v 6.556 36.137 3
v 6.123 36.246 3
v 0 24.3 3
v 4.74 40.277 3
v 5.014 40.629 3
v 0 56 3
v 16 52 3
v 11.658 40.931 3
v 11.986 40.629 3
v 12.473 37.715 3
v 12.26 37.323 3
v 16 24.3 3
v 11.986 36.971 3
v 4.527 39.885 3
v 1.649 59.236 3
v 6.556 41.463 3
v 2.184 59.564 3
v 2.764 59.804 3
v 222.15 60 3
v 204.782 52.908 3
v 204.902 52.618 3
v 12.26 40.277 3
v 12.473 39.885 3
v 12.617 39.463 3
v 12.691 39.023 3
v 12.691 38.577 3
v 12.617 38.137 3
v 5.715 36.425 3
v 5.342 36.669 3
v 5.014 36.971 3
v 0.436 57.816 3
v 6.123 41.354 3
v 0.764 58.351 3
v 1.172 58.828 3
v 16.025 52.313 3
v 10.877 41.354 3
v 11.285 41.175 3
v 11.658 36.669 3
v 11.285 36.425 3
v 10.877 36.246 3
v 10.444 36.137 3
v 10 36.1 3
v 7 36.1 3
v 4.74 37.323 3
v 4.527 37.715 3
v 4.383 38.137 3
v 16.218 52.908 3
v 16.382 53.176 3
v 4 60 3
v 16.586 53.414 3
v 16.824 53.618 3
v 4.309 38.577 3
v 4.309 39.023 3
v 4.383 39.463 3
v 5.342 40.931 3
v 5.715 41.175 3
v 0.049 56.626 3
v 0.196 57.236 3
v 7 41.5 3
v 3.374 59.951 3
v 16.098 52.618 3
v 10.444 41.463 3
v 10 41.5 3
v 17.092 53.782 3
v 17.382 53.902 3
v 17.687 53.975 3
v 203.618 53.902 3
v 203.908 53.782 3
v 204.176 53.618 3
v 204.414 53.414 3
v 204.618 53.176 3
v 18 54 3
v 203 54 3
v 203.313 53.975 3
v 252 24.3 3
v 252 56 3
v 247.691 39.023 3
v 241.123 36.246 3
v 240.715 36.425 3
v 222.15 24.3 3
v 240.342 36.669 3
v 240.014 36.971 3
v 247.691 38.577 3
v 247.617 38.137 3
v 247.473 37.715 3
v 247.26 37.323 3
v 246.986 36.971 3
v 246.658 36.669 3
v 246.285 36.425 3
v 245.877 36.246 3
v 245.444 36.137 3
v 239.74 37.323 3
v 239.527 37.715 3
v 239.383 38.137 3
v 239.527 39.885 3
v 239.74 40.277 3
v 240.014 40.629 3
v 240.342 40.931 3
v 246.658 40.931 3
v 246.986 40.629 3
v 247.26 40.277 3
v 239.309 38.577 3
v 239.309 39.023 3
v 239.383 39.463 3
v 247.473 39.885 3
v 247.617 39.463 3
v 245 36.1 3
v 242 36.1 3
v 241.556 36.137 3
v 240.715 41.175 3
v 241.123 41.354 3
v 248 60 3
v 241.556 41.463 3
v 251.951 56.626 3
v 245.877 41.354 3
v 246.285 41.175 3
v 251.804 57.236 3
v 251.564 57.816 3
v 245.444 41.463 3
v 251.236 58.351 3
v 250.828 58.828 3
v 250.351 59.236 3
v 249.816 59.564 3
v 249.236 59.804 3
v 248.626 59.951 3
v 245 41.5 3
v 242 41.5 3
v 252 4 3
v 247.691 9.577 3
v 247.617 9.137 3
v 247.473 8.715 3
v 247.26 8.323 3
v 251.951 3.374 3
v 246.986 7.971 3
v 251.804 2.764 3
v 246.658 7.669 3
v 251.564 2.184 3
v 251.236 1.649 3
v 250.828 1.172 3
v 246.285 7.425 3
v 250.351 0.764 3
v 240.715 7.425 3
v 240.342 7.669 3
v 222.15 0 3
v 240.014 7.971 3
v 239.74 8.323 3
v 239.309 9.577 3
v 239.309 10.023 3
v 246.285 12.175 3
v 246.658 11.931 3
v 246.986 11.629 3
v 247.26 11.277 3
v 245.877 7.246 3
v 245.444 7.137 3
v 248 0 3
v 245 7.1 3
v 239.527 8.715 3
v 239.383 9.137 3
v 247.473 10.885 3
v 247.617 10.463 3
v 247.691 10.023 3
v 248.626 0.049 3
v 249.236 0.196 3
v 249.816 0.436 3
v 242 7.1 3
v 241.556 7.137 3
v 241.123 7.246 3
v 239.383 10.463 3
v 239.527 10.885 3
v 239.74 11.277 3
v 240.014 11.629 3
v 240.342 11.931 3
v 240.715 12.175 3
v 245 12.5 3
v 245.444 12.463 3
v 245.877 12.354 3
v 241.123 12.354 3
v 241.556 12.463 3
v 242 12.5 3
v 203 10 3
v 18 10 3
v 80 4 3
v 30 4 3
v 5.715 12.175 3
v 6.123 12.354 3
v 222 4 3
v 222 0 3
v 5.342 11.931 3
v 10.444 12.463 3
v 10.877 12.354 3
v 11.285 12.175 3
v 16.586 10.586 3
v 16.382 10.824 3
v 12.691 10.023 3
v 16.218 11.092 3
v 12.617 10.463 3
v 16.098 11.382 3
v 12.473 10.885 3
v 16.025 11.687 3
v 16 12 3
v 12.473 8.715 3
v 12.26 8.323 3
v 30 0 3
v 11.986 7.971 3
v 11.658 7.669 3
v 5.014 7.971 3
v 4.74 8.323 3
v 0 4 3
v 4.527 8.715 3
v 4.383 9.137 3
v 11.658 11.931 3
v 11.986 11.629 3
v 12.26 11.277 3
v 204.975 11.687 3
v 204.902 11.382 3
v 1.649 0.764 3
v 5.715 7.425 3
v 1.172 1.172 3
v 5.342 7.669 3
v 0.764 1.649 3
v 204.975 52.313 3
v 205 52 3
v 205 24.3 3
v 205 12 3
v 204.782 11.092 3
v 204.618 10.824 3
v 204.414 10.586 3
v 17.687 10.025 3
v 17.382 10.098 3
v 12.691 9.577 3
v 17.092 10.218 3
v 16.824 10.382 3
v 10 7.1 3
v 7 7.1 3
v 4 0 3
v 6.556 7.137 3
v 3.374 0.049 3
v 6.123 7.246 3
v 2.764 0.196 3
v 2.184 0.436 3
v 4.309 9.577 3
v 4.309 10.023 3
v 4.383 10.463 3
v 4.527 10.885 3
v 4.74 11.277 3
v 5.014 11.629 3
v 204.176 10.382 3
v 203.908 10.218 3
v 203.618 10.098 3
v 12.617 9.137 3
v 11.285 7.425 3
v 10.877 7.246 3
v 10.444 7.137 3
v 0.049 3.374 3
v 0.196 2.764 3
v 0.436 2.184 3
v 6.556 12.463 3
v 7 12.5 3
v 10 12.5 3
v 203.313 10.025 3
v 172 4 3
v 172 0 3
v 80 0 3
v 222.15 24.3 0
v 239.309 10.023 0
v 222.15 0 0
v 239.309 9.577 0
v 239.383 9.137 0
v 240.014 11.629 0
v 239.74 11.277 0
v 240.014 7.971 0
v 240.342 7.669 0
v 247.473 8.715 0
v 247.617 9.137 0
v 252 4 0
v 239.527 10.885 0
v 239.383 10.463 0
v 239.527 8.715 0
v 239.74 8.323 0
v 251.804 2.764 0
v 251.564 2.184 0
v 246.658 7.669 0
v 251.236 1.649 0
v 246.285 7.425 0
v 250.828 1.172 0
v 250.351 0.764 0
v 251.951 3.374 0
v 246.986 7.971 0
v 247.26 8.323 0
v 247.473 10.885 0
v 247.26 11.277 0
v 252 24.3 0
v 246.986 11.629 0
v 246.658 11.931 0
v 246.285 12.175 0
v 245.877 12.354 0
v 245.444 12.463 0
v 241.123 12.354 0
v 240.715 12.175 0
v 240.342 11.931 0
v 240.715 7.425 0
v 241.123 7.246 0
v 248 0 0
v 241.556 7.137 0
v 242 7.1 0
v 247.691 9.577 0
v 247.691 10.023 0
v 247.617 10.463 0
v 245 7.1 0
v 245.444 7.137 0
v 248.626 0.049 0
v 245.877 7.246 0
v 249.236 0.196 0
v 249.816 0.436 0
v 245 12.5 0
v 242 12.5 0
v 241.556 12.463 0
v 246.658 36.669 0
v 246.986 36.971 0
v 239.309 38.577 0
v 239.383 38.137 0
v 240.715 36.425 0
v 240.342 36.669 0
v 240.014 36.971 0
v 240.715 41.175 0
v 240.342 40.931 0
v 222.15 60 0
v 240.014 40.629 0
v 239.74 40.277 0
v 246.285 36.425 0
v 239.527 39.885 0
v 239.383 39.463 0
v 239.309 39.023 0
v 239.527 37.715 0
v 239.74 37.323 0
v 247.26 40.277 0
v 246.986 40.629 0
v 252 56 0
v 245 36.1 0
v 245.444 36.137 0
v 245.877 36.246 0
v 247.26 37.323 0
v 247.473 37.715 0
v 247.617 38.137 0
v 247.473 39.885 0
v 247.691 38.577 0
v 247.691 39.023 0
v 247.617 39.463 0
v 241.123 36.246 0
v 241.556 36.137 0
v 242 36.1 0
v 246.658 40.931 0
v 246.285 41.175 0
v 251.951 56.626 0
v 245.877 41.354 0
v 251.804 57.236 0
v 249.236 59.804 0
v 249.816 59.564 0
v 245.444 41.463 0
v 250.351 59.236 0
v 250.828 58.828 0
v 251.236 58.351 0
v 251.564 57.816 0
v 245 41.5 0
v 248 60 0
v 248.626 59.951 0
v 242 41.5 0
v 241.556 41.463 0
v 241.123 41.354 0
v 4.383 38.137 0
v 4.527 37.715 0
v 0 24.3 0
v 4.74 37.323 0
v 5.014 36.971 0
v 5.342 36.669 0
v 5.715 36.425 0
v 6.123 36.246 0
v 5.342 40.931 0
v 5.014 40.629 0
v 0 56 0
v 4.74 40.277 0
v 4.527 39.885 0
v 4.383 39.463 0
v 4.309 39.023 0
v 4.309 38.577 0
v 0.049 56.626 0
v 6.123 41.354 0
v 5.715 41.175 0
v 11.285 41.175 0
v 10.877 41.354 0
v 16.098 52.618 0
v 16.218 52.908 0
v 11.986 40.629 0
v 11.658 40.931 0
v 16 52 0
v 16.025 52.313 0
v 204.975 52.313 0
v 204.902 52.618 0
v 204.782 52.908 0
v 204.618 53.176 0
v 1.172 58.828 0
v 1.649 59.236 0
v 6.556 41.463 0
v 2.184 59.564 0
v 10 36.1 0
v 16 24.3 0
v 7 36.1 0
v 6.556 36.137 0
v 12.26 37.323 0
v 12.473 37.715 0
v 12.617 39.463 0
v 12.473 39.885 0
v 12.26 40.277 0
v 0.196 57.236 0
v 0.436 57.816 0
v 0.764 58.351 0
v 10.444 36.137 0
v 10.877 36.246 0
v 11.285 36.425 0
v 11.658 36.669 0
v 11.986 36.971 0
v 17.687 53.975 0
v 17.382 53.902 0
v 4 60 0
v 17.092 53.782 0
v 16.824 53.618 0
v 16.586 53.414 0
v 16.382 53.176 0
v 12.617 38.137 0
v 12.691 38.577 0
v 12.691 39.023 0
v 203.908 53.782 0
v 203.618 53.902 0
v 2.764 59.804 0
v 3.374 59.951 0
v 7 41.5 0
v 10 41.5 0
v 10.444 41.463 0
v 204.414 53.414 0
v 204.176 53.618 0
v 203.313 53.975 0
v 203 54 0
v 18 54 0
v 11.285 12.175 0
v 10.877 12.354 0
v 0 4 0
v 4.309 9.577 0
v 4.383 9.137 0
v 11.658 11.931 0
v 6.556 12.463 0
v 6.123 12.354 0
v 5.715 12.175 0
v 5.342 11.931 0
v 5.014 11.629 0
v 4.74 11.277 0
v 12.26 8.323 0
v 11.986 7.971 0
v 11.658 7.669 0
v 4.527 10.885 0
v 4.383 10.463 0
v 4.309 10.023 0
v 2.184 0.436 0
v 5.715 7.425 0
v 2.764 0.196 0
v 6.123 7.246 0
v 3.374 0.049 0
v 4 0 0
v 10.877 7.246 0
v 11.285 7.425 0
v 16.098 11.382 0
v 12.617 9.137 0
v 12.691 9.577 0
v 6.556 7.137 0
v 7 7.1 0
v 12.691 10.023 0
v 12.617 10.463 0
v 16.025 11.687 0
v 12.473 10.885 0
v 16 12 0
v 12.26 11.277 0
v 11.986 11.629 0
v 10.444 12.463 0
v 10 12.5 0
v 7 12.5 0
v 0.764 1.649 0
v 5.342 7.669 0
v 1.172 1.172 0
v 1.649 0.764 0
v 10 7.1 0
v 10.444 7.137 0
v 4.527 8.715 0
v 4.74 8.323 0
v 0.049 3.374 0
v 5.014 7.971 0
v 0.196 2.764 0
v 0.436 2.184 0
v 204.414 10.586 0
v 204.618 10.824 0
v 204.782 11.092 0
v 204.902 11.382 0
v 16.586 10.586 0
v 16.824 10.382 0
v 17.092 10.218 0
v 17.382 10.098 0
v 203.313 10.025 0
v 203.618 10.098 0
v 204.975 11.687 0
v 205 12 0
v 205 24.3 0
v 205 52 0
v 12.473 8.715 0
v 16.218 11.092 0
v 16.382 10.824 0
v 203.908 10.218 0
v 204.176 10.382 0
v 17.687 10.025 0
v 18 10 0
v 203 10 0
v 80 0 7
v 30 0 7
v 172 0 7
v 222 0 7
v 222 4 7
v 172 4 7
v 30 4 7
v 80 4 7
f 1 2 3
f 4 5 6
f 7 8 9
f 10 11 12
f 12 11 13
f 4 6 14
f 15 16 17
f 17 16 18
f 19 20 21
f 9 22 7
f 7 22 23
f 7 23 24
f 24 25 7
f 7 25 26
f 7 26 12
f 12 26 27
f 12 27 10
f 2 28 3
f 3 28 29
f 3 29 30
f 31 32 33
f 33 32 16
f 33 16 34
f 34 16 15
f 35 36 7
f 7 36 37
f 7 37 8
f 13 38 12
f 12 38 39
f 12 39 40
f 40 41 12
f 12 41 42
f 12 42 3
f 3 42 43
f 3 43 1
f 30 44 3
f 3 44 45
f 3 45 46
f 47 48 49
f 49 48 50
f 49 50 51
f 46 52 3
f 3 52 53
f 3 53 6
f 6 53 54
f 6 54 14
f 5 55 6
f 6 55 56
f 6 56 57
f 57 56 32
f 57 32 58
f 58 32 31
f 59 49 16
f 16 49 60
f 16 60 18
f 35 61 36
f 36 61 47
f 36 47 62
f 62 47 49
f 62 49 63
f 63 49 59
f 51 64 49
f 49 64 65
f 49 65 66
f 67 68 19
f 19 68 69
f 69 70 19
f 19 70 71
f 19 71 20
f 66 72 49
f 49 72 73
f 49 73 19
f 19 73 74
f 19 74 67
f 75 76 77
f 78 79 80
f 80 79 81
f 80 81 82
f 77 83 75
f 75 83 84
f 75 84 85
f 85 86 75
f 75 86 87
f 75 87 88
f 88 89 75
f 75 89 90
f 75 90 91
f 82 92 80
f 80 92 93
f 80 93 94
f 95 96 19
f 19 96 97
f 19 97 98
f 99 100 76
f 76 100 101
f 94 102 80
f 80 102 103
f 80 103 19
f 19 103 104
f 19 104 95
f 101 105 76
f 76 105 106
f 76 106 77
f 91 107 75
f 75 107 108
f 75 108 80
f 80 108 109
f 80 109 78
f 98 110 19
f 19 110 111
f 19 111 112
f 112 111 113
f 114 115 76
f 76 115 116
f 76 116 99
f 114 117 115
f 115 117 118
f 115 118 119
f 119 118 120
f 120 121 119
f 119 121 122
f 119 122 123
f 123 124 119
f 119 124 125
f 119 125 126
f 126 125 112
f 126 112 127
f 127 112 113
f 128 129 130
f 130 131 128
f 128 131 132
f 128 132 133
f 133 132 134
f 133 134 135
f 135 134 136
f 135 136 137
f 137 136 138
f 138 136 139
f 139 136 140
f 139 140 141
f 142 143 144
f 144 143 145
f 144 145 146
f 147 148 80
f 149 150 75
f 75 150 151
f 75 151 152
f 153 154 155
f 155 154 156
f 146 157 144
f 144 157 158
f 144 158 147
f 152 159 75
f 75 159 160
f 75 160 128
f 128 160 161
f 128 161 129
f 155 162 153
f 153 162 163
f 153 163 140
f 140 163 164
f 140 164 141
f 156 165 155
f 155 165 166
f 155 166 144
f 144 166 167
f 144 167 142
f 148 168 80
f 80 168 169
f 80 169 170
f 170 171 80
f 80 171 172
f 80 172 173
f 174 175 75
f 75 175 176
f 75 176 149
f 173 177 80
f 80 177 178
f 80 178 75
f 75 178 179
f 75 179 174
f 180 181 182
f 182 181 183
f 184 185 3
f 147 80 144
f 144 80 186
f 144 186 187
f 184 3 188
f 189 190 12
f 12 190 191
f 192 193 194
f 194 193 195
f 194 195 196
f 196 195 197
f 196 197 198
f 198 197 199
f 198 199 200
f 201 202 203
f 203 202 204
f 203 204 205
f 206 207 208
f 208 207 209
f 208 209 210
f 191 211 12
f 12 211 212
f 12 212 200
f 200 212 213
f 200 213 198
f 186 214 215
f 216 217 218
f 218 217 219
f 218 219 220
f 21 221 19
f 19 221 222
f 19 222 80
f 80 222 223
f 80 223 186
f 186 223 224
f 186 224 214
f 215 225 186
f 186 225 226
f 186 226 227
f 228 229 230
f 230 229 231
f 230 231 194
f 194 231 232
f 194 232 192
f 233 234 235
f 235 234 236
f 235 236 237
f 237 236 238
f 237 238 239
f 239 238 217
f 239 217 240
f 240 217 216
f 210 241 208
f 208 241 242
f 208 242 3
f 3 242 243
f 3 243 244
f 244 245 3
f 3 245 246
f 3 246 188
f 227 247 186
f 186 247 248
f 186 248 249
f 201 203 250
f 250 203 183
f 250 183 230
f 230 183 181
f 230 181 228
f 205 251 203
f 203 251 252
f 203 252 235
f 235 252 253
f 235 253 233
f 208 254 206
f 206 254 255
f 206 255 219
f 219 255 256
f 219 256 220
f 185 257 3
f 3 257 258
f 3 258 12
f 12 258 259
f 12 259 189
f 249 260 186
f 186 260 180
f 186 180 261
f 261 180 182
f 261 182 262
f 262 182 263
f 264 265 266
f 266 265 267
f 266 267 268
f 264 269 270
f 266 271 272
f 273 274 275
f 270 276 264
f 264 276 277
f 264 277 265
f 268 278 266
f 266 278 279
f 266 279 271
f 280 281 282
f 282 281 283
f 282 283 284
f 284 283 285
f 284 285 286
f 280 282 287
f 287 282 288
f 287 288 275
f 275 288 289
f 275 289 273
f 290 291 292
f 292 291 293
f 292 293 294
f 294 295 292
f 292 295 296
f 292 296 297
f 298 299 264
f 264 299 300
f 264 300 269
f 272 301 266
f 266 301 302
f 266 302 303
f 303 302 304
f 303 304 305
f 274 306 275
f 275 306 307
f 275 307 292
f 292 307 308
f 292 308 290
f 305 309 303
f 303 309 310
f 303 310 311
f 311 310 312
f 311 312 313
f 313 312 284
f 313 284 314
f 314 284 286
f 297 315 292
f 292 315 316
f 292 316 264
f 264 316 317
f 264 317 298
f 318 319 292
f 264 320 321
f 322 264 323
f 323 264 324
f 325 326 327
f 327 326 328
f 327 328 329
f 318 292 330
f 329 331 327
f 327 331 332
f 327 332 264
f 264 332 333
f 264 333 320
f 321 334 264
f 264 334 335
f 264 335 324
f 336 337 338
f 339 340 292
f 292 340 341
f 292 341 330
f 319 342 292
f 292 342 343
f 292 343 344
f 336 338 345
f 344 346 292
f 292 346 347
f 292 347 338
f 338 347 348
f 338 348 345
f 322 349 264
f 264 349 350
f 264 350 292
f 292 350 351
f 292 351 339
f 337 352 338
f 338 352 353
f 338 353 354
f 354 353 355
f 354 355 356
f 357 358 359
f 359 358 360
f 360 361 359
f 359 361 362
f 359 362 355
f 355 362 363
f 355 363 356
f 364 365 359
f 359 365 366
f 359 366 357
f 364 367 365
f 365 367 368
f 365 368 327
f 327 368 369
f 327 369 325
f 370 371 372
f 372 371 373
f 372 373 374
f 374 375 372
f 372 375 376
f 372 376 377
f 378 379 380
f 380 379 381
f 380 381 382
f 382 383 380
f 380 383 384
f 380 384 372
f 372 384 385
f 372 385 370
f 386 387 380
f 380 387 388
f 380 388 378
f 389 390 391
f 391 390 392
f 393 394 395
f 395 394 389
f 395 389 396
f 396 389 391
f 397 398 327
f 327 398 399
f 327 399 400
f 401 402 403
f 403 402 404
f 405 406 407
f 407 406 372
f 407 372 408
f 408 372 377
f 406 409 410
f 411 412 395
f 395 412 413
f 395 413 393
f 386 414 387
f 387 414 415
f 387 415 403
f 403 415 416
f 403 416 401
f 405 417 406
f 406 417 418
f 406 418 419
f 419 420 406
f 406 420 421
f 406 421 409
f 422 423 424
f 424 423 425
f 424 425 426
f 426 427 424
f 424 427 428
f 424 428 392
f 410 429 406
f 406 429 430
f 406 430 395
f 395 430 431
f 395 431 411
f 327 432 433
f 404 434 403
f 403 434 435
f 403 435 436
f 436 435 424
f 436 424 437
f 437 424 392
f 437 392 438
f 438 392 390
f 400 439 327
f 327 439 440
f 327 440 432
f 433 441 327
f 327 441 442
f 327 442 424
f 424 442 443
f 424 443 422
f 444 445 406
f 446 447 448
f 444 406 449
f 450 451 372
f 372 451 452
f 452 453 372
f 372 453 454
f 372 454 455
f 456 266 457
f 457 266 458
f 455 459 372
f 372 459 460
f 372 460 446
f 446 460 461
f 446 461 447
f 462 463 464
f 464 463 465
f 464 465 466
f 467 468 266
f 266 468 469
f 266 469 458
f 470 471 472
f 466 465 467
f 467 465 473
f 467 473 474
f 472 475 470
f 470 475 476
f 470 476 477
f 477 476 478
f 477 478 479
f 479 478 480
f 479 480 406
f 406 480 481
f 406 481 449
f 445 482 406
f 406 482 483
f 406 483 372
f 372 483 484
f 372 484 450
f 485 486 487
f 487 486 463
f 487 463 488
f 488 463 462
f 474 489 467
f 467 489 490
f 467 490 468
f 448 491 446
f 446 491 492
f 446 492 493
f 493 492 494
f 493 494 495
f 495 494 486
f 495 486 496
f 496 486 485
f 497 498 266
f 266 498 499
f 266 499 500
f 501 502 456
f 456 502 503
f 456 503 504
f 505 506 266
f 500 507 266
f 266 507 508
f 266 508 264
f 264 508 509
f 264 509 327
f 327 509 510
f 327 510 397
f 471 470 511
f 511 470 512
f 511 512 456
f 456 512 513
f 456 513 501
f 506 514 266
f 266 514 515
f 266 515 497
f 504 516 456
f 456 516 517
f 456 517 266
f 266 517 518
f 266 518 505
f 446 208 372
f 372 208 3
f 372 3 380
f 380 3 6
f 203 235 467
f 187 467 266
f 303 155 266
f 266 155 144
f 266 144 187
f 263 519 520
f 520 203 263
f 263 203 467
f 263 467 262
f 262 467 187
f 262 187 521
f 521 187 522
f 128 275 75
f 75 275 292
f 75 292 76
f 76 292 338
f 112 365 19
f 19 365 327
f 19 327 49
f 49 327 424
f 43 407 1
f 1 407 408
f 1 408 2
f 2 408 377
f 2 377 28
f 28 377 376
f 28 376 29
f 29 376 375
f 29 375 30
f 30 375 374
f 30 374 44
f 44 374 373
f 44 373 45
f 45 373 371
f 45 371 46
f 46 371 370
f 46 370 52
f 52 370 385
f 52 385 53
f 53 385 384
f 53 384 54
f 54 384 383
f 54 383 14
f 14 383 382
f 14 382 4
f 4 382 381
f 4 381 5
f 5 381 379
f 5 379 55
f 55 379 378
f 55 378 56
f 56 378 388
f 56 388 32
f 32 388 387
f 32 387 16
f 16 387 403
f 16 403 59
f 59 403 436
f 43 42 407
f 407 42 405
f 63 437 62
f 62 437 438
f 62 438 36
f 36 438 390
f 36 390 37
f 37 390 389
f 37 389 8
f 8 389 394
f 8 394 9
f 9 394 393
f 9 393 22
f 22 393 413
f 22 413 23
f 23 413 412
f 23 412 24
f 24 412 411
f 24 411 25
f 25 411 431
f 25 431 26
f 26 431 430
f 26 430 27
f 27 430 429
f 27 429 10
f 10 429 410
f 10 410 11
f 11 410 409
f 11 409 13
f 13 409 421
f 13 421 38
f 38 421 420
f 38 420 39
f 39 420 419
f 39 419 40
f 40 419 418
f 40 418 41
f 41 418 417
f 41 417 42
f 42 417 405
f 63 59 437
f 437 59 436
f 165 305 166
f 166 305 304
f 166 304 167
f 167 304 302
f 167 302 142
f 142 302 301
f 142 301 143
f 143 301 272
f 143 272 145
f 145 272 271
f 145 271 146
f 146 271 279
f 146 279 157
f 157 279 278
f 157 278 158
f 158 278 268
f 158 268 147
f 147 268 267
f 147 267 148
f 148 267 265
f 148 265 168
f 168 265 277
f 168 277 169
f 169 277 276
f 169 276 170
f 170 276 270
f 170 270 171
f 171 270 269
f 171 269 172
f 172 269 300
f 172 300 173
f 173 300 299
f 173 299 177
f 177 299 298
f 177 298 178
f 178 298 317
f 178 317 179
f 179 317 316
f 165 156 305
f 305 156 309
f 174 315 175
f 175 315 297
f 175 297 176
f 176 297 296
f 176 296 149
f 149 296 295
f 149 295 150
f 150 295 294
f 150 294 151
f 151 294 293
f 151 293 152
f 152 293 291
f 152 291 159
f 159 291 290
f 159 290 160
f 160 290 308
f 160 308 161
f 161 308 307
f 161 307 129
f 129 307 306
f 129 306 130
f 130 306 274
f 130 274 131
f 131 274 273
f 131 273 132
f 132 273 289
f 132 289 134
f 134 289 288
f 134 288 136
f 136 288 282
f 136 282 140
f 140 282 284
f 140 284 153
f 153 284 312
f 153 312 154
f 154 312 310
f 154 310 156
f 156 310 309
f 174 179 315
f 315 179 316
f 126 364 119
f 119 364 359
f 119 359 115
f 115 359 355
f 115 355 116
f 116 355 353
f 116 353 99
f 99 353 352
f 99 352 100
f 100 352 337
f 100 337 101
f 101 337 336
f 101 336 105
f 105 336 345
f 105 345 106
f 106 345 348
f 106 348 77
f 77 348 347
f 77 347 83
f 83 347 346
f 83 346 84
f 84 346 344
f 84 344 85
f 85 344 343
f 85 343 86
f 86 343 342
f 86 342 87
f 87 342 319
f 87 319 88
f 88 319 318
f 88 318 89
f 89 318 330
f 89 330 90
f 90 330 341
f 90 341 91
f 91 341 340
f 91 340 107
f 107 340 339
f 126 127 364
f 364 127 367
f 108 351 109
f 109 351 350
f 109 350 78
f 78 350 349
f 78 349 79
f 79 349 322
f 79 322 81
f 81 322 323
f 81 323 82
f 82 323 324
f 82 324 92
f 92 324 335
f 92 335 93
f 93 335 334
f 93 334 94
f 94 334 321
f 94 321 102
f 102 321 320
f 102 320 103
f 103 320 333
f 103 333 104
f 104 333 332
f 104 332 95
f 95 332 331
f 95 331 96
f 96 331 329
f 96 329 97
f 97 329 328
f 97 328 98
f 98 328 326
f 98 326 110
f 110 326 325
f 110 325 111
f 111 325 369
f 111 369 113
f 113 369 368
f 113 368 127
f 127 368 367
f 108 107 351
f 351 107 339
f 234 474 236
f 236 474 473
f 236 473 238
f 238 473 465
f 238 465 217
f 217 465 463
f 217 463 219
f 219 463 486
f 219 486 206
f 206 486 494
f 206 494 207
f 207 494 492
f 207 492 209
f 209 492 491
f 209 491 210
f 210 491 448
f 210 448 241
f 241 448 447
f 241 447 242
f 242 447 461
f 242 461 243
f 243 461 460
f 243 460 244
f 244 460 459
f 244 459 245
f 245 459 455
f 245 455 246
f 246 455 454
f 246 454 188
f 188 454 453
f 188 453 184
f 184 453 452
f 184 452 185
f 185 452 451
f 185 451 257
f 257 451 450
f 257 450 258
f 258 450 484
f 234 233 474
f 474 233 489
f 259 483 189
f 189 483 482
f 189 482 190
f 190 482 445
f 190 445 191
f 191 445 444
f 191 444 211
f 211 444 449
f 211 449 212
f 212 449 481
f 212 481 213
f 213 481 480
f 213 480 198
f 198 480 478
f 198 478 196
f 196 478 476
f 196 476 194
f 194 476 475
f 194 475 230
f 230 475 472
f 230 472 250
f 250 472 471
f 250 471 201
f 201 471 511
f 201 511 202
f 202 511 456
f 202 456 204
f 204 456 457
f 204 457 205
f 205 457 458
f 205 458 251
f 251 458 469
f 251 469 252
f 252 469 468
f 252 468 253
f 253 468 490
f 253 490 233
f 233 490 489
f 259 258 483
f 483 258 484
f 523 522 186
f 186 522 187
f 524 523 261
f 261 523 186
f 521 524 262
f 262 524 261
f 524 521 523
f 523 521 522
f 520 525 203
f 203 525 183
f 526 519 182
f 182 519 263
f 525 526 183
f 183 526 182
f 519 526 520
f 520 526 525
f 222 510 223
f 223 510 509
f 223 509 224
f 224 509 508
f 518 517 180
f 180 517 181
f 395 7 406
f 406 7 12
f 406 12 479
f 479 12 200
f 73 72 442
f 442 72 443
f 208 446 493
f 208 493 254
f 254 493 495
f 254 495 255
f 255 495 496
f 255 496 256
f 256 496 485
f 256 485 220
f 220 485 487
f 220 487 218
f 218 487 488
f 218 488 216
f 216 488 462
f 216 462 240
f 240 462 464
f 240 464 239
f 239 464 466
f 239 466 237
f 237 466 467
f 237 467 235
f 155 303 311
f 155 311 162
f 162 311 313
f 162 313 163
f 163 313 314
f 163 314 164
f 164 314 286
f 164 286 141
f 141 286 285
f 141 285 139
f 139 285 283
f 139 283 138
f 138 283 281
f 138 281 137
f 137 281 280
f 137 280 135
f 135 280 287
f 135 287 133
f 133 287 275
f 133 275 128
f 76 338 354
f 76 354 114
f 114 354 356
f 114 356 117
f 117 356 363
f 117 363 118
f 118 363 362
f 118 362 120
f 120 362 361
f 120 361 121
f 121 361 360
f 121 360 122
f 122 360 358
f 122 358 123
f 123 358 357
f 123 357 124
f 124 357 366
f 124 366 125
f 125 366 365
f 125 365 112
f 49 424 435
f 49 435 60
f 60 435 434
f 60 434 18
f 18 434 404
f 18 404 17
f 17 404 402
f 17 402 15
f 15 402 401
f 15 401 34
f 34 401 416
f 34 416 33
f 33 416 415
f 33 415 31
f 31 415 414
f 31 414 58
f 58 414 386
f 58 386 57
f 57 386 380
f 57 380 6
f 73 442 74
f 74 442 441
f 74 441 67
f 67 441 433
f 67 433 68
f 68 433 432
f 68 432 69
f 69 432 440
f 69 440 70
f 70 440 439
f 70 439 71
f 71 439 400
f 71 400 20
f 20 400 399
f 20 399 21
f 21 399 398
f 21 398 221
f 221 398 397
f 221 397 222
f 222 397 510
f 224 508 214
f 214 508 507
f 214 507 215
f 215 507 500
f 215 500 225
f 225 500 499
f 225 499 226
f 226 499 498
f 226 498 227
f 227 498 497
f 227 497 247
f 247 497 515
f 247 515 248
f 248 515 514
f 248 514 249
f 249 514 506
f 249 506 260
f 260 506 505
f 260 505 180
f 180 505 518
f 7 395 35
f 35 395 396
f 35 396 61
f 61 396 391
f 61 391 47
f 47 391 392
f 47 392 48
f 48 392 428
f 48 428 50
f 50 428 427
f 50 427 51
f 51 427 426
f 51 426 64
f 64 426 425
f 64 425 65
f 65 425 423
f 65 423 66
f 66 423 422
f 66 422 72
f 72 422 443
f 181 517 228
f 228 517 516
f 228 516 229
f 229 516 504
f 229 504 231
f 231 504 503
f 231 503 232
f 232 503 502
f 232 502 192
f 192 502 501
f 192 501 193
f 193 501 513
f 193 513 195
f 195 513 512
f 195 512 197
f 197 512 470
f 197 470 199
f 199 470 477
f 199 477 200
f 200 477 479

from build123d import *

# Parameters (mm, degrees)
SKETCH1_W           = 252
SKETCH1_H           = 60
BOSS_EXTRUDE1_DEPTH = 3
SKETCH3_W           = 50
SKETCH3_H           = 4
BOSS_EXTRUDE3_DEPTH = 4
SKETCH4_W           = 189
SKETCH4_H           = 44
CUT_EXTRUDE1_DEPTH  = 4
FILLET1_R           = 4
FILLET3_R           = 2


with BuildPart() as part:
    # Sketch1 → Boss-Extrude1 (new body)
    with BuildSketch(Plane.XY):
        with Locations((126, 30)):
            Rectangle(SKETCH1_W, SKETCH1_H)
        with BuildLine():
            Line((245, 36.1), (242, 36.1))
            ThreePointArc((242, 36.1), (239.3, 38.8), (242, 41.5))
            Line((242, 41.5), (245, 41.5))
            ThreePointArc((245, 41.5), (247.7, 38.8), (245, 36.1))
        make_face(mode=Mode.SUBTRACT)
        with BuildLine():
            Line((242, 12.5), (245, 12.5))
            ThreePointArc((245, 12.5), (247.7, 9.8), (245, 7.1))
            Line((245, 7.1), (242, 7.1))
            ThreePointArc((242, 7.1), (239.3, 9.8), (242, 12.5))
        make_face(mode=Mode.SUBTRACT)
        with BuildLine():
            Line((7, 41.5), (10, 41.5))
            ThreePointArc((10, 41.5), (12.7, 38.8), (10, 36.1))
            Line((10, 36.1), (7, 36.1))
            ThreePointArc((7, 36.1), (4.3, 38.8), (7, 41.5))
        make_face(mode=Mode.SUBTRACT)
        with BuildLine():
            Line((7, 12.5), (10, 12.5))
            ThreePointArc((10, 12.5), (12.7, 9.8), (10, 7.1))
            Line((10, 7.1), (7, 7.1))
            ThreePointArc((7, 7.1), (4.3, 9.8), (7, 12.5))
        make_face(mode=Mode.SUBTRACT)
    extrude(amount=BOSS_EXTRUDE1_DEPTH)

    # Sketch3 → Boss-Extrude3 (add)
    with BuildSketch(Plane.XY.offset(3)):
        with Locations((55, 2)):
            Rectangle(SKETCH3_W, SKETCH3_H)
        with Locations((197, 2)):
            Rectangle(SKETCH3_W, SKETCH3_H)
    extrude(amount=BOSS_EXTRUDE3_DEPTH)

    # Sketch4 → Cut-Extrude1 (cut)
    with BuildSketch(Plane.XY.offset(3)):
        with Locations((110.5, 32)):
            Rectangle(SKETCH4_W, SKETCH4_H)
    extrude(amount=-CUT_EXTRUDE1_DEPTH, mode=Mode.SUBTRACT)

    # Fillet1
    fillet1_edges = [part.edges().sort_by_distance(p)[0] for p in [
        (0, 60, 1.5),
        (252, 60, 1.5),
        (252, 0, 1.5),
        (0, 0, 1.5),
    ]]
    fillet(fillet1_edges, radius=FILLET1_R)

    # Fillet3
    fillet3_edges = [part.edges().sort_by_distance(p)[0] for p in [
        (205, 54, 1.5),
        (205, 10, 1.5),
        (16, 10, 1.5),
        (16, 54, 1.5),
    ]]
    fillet(fillet3_edges, radius=FILLET3_R)


solid = part.part
